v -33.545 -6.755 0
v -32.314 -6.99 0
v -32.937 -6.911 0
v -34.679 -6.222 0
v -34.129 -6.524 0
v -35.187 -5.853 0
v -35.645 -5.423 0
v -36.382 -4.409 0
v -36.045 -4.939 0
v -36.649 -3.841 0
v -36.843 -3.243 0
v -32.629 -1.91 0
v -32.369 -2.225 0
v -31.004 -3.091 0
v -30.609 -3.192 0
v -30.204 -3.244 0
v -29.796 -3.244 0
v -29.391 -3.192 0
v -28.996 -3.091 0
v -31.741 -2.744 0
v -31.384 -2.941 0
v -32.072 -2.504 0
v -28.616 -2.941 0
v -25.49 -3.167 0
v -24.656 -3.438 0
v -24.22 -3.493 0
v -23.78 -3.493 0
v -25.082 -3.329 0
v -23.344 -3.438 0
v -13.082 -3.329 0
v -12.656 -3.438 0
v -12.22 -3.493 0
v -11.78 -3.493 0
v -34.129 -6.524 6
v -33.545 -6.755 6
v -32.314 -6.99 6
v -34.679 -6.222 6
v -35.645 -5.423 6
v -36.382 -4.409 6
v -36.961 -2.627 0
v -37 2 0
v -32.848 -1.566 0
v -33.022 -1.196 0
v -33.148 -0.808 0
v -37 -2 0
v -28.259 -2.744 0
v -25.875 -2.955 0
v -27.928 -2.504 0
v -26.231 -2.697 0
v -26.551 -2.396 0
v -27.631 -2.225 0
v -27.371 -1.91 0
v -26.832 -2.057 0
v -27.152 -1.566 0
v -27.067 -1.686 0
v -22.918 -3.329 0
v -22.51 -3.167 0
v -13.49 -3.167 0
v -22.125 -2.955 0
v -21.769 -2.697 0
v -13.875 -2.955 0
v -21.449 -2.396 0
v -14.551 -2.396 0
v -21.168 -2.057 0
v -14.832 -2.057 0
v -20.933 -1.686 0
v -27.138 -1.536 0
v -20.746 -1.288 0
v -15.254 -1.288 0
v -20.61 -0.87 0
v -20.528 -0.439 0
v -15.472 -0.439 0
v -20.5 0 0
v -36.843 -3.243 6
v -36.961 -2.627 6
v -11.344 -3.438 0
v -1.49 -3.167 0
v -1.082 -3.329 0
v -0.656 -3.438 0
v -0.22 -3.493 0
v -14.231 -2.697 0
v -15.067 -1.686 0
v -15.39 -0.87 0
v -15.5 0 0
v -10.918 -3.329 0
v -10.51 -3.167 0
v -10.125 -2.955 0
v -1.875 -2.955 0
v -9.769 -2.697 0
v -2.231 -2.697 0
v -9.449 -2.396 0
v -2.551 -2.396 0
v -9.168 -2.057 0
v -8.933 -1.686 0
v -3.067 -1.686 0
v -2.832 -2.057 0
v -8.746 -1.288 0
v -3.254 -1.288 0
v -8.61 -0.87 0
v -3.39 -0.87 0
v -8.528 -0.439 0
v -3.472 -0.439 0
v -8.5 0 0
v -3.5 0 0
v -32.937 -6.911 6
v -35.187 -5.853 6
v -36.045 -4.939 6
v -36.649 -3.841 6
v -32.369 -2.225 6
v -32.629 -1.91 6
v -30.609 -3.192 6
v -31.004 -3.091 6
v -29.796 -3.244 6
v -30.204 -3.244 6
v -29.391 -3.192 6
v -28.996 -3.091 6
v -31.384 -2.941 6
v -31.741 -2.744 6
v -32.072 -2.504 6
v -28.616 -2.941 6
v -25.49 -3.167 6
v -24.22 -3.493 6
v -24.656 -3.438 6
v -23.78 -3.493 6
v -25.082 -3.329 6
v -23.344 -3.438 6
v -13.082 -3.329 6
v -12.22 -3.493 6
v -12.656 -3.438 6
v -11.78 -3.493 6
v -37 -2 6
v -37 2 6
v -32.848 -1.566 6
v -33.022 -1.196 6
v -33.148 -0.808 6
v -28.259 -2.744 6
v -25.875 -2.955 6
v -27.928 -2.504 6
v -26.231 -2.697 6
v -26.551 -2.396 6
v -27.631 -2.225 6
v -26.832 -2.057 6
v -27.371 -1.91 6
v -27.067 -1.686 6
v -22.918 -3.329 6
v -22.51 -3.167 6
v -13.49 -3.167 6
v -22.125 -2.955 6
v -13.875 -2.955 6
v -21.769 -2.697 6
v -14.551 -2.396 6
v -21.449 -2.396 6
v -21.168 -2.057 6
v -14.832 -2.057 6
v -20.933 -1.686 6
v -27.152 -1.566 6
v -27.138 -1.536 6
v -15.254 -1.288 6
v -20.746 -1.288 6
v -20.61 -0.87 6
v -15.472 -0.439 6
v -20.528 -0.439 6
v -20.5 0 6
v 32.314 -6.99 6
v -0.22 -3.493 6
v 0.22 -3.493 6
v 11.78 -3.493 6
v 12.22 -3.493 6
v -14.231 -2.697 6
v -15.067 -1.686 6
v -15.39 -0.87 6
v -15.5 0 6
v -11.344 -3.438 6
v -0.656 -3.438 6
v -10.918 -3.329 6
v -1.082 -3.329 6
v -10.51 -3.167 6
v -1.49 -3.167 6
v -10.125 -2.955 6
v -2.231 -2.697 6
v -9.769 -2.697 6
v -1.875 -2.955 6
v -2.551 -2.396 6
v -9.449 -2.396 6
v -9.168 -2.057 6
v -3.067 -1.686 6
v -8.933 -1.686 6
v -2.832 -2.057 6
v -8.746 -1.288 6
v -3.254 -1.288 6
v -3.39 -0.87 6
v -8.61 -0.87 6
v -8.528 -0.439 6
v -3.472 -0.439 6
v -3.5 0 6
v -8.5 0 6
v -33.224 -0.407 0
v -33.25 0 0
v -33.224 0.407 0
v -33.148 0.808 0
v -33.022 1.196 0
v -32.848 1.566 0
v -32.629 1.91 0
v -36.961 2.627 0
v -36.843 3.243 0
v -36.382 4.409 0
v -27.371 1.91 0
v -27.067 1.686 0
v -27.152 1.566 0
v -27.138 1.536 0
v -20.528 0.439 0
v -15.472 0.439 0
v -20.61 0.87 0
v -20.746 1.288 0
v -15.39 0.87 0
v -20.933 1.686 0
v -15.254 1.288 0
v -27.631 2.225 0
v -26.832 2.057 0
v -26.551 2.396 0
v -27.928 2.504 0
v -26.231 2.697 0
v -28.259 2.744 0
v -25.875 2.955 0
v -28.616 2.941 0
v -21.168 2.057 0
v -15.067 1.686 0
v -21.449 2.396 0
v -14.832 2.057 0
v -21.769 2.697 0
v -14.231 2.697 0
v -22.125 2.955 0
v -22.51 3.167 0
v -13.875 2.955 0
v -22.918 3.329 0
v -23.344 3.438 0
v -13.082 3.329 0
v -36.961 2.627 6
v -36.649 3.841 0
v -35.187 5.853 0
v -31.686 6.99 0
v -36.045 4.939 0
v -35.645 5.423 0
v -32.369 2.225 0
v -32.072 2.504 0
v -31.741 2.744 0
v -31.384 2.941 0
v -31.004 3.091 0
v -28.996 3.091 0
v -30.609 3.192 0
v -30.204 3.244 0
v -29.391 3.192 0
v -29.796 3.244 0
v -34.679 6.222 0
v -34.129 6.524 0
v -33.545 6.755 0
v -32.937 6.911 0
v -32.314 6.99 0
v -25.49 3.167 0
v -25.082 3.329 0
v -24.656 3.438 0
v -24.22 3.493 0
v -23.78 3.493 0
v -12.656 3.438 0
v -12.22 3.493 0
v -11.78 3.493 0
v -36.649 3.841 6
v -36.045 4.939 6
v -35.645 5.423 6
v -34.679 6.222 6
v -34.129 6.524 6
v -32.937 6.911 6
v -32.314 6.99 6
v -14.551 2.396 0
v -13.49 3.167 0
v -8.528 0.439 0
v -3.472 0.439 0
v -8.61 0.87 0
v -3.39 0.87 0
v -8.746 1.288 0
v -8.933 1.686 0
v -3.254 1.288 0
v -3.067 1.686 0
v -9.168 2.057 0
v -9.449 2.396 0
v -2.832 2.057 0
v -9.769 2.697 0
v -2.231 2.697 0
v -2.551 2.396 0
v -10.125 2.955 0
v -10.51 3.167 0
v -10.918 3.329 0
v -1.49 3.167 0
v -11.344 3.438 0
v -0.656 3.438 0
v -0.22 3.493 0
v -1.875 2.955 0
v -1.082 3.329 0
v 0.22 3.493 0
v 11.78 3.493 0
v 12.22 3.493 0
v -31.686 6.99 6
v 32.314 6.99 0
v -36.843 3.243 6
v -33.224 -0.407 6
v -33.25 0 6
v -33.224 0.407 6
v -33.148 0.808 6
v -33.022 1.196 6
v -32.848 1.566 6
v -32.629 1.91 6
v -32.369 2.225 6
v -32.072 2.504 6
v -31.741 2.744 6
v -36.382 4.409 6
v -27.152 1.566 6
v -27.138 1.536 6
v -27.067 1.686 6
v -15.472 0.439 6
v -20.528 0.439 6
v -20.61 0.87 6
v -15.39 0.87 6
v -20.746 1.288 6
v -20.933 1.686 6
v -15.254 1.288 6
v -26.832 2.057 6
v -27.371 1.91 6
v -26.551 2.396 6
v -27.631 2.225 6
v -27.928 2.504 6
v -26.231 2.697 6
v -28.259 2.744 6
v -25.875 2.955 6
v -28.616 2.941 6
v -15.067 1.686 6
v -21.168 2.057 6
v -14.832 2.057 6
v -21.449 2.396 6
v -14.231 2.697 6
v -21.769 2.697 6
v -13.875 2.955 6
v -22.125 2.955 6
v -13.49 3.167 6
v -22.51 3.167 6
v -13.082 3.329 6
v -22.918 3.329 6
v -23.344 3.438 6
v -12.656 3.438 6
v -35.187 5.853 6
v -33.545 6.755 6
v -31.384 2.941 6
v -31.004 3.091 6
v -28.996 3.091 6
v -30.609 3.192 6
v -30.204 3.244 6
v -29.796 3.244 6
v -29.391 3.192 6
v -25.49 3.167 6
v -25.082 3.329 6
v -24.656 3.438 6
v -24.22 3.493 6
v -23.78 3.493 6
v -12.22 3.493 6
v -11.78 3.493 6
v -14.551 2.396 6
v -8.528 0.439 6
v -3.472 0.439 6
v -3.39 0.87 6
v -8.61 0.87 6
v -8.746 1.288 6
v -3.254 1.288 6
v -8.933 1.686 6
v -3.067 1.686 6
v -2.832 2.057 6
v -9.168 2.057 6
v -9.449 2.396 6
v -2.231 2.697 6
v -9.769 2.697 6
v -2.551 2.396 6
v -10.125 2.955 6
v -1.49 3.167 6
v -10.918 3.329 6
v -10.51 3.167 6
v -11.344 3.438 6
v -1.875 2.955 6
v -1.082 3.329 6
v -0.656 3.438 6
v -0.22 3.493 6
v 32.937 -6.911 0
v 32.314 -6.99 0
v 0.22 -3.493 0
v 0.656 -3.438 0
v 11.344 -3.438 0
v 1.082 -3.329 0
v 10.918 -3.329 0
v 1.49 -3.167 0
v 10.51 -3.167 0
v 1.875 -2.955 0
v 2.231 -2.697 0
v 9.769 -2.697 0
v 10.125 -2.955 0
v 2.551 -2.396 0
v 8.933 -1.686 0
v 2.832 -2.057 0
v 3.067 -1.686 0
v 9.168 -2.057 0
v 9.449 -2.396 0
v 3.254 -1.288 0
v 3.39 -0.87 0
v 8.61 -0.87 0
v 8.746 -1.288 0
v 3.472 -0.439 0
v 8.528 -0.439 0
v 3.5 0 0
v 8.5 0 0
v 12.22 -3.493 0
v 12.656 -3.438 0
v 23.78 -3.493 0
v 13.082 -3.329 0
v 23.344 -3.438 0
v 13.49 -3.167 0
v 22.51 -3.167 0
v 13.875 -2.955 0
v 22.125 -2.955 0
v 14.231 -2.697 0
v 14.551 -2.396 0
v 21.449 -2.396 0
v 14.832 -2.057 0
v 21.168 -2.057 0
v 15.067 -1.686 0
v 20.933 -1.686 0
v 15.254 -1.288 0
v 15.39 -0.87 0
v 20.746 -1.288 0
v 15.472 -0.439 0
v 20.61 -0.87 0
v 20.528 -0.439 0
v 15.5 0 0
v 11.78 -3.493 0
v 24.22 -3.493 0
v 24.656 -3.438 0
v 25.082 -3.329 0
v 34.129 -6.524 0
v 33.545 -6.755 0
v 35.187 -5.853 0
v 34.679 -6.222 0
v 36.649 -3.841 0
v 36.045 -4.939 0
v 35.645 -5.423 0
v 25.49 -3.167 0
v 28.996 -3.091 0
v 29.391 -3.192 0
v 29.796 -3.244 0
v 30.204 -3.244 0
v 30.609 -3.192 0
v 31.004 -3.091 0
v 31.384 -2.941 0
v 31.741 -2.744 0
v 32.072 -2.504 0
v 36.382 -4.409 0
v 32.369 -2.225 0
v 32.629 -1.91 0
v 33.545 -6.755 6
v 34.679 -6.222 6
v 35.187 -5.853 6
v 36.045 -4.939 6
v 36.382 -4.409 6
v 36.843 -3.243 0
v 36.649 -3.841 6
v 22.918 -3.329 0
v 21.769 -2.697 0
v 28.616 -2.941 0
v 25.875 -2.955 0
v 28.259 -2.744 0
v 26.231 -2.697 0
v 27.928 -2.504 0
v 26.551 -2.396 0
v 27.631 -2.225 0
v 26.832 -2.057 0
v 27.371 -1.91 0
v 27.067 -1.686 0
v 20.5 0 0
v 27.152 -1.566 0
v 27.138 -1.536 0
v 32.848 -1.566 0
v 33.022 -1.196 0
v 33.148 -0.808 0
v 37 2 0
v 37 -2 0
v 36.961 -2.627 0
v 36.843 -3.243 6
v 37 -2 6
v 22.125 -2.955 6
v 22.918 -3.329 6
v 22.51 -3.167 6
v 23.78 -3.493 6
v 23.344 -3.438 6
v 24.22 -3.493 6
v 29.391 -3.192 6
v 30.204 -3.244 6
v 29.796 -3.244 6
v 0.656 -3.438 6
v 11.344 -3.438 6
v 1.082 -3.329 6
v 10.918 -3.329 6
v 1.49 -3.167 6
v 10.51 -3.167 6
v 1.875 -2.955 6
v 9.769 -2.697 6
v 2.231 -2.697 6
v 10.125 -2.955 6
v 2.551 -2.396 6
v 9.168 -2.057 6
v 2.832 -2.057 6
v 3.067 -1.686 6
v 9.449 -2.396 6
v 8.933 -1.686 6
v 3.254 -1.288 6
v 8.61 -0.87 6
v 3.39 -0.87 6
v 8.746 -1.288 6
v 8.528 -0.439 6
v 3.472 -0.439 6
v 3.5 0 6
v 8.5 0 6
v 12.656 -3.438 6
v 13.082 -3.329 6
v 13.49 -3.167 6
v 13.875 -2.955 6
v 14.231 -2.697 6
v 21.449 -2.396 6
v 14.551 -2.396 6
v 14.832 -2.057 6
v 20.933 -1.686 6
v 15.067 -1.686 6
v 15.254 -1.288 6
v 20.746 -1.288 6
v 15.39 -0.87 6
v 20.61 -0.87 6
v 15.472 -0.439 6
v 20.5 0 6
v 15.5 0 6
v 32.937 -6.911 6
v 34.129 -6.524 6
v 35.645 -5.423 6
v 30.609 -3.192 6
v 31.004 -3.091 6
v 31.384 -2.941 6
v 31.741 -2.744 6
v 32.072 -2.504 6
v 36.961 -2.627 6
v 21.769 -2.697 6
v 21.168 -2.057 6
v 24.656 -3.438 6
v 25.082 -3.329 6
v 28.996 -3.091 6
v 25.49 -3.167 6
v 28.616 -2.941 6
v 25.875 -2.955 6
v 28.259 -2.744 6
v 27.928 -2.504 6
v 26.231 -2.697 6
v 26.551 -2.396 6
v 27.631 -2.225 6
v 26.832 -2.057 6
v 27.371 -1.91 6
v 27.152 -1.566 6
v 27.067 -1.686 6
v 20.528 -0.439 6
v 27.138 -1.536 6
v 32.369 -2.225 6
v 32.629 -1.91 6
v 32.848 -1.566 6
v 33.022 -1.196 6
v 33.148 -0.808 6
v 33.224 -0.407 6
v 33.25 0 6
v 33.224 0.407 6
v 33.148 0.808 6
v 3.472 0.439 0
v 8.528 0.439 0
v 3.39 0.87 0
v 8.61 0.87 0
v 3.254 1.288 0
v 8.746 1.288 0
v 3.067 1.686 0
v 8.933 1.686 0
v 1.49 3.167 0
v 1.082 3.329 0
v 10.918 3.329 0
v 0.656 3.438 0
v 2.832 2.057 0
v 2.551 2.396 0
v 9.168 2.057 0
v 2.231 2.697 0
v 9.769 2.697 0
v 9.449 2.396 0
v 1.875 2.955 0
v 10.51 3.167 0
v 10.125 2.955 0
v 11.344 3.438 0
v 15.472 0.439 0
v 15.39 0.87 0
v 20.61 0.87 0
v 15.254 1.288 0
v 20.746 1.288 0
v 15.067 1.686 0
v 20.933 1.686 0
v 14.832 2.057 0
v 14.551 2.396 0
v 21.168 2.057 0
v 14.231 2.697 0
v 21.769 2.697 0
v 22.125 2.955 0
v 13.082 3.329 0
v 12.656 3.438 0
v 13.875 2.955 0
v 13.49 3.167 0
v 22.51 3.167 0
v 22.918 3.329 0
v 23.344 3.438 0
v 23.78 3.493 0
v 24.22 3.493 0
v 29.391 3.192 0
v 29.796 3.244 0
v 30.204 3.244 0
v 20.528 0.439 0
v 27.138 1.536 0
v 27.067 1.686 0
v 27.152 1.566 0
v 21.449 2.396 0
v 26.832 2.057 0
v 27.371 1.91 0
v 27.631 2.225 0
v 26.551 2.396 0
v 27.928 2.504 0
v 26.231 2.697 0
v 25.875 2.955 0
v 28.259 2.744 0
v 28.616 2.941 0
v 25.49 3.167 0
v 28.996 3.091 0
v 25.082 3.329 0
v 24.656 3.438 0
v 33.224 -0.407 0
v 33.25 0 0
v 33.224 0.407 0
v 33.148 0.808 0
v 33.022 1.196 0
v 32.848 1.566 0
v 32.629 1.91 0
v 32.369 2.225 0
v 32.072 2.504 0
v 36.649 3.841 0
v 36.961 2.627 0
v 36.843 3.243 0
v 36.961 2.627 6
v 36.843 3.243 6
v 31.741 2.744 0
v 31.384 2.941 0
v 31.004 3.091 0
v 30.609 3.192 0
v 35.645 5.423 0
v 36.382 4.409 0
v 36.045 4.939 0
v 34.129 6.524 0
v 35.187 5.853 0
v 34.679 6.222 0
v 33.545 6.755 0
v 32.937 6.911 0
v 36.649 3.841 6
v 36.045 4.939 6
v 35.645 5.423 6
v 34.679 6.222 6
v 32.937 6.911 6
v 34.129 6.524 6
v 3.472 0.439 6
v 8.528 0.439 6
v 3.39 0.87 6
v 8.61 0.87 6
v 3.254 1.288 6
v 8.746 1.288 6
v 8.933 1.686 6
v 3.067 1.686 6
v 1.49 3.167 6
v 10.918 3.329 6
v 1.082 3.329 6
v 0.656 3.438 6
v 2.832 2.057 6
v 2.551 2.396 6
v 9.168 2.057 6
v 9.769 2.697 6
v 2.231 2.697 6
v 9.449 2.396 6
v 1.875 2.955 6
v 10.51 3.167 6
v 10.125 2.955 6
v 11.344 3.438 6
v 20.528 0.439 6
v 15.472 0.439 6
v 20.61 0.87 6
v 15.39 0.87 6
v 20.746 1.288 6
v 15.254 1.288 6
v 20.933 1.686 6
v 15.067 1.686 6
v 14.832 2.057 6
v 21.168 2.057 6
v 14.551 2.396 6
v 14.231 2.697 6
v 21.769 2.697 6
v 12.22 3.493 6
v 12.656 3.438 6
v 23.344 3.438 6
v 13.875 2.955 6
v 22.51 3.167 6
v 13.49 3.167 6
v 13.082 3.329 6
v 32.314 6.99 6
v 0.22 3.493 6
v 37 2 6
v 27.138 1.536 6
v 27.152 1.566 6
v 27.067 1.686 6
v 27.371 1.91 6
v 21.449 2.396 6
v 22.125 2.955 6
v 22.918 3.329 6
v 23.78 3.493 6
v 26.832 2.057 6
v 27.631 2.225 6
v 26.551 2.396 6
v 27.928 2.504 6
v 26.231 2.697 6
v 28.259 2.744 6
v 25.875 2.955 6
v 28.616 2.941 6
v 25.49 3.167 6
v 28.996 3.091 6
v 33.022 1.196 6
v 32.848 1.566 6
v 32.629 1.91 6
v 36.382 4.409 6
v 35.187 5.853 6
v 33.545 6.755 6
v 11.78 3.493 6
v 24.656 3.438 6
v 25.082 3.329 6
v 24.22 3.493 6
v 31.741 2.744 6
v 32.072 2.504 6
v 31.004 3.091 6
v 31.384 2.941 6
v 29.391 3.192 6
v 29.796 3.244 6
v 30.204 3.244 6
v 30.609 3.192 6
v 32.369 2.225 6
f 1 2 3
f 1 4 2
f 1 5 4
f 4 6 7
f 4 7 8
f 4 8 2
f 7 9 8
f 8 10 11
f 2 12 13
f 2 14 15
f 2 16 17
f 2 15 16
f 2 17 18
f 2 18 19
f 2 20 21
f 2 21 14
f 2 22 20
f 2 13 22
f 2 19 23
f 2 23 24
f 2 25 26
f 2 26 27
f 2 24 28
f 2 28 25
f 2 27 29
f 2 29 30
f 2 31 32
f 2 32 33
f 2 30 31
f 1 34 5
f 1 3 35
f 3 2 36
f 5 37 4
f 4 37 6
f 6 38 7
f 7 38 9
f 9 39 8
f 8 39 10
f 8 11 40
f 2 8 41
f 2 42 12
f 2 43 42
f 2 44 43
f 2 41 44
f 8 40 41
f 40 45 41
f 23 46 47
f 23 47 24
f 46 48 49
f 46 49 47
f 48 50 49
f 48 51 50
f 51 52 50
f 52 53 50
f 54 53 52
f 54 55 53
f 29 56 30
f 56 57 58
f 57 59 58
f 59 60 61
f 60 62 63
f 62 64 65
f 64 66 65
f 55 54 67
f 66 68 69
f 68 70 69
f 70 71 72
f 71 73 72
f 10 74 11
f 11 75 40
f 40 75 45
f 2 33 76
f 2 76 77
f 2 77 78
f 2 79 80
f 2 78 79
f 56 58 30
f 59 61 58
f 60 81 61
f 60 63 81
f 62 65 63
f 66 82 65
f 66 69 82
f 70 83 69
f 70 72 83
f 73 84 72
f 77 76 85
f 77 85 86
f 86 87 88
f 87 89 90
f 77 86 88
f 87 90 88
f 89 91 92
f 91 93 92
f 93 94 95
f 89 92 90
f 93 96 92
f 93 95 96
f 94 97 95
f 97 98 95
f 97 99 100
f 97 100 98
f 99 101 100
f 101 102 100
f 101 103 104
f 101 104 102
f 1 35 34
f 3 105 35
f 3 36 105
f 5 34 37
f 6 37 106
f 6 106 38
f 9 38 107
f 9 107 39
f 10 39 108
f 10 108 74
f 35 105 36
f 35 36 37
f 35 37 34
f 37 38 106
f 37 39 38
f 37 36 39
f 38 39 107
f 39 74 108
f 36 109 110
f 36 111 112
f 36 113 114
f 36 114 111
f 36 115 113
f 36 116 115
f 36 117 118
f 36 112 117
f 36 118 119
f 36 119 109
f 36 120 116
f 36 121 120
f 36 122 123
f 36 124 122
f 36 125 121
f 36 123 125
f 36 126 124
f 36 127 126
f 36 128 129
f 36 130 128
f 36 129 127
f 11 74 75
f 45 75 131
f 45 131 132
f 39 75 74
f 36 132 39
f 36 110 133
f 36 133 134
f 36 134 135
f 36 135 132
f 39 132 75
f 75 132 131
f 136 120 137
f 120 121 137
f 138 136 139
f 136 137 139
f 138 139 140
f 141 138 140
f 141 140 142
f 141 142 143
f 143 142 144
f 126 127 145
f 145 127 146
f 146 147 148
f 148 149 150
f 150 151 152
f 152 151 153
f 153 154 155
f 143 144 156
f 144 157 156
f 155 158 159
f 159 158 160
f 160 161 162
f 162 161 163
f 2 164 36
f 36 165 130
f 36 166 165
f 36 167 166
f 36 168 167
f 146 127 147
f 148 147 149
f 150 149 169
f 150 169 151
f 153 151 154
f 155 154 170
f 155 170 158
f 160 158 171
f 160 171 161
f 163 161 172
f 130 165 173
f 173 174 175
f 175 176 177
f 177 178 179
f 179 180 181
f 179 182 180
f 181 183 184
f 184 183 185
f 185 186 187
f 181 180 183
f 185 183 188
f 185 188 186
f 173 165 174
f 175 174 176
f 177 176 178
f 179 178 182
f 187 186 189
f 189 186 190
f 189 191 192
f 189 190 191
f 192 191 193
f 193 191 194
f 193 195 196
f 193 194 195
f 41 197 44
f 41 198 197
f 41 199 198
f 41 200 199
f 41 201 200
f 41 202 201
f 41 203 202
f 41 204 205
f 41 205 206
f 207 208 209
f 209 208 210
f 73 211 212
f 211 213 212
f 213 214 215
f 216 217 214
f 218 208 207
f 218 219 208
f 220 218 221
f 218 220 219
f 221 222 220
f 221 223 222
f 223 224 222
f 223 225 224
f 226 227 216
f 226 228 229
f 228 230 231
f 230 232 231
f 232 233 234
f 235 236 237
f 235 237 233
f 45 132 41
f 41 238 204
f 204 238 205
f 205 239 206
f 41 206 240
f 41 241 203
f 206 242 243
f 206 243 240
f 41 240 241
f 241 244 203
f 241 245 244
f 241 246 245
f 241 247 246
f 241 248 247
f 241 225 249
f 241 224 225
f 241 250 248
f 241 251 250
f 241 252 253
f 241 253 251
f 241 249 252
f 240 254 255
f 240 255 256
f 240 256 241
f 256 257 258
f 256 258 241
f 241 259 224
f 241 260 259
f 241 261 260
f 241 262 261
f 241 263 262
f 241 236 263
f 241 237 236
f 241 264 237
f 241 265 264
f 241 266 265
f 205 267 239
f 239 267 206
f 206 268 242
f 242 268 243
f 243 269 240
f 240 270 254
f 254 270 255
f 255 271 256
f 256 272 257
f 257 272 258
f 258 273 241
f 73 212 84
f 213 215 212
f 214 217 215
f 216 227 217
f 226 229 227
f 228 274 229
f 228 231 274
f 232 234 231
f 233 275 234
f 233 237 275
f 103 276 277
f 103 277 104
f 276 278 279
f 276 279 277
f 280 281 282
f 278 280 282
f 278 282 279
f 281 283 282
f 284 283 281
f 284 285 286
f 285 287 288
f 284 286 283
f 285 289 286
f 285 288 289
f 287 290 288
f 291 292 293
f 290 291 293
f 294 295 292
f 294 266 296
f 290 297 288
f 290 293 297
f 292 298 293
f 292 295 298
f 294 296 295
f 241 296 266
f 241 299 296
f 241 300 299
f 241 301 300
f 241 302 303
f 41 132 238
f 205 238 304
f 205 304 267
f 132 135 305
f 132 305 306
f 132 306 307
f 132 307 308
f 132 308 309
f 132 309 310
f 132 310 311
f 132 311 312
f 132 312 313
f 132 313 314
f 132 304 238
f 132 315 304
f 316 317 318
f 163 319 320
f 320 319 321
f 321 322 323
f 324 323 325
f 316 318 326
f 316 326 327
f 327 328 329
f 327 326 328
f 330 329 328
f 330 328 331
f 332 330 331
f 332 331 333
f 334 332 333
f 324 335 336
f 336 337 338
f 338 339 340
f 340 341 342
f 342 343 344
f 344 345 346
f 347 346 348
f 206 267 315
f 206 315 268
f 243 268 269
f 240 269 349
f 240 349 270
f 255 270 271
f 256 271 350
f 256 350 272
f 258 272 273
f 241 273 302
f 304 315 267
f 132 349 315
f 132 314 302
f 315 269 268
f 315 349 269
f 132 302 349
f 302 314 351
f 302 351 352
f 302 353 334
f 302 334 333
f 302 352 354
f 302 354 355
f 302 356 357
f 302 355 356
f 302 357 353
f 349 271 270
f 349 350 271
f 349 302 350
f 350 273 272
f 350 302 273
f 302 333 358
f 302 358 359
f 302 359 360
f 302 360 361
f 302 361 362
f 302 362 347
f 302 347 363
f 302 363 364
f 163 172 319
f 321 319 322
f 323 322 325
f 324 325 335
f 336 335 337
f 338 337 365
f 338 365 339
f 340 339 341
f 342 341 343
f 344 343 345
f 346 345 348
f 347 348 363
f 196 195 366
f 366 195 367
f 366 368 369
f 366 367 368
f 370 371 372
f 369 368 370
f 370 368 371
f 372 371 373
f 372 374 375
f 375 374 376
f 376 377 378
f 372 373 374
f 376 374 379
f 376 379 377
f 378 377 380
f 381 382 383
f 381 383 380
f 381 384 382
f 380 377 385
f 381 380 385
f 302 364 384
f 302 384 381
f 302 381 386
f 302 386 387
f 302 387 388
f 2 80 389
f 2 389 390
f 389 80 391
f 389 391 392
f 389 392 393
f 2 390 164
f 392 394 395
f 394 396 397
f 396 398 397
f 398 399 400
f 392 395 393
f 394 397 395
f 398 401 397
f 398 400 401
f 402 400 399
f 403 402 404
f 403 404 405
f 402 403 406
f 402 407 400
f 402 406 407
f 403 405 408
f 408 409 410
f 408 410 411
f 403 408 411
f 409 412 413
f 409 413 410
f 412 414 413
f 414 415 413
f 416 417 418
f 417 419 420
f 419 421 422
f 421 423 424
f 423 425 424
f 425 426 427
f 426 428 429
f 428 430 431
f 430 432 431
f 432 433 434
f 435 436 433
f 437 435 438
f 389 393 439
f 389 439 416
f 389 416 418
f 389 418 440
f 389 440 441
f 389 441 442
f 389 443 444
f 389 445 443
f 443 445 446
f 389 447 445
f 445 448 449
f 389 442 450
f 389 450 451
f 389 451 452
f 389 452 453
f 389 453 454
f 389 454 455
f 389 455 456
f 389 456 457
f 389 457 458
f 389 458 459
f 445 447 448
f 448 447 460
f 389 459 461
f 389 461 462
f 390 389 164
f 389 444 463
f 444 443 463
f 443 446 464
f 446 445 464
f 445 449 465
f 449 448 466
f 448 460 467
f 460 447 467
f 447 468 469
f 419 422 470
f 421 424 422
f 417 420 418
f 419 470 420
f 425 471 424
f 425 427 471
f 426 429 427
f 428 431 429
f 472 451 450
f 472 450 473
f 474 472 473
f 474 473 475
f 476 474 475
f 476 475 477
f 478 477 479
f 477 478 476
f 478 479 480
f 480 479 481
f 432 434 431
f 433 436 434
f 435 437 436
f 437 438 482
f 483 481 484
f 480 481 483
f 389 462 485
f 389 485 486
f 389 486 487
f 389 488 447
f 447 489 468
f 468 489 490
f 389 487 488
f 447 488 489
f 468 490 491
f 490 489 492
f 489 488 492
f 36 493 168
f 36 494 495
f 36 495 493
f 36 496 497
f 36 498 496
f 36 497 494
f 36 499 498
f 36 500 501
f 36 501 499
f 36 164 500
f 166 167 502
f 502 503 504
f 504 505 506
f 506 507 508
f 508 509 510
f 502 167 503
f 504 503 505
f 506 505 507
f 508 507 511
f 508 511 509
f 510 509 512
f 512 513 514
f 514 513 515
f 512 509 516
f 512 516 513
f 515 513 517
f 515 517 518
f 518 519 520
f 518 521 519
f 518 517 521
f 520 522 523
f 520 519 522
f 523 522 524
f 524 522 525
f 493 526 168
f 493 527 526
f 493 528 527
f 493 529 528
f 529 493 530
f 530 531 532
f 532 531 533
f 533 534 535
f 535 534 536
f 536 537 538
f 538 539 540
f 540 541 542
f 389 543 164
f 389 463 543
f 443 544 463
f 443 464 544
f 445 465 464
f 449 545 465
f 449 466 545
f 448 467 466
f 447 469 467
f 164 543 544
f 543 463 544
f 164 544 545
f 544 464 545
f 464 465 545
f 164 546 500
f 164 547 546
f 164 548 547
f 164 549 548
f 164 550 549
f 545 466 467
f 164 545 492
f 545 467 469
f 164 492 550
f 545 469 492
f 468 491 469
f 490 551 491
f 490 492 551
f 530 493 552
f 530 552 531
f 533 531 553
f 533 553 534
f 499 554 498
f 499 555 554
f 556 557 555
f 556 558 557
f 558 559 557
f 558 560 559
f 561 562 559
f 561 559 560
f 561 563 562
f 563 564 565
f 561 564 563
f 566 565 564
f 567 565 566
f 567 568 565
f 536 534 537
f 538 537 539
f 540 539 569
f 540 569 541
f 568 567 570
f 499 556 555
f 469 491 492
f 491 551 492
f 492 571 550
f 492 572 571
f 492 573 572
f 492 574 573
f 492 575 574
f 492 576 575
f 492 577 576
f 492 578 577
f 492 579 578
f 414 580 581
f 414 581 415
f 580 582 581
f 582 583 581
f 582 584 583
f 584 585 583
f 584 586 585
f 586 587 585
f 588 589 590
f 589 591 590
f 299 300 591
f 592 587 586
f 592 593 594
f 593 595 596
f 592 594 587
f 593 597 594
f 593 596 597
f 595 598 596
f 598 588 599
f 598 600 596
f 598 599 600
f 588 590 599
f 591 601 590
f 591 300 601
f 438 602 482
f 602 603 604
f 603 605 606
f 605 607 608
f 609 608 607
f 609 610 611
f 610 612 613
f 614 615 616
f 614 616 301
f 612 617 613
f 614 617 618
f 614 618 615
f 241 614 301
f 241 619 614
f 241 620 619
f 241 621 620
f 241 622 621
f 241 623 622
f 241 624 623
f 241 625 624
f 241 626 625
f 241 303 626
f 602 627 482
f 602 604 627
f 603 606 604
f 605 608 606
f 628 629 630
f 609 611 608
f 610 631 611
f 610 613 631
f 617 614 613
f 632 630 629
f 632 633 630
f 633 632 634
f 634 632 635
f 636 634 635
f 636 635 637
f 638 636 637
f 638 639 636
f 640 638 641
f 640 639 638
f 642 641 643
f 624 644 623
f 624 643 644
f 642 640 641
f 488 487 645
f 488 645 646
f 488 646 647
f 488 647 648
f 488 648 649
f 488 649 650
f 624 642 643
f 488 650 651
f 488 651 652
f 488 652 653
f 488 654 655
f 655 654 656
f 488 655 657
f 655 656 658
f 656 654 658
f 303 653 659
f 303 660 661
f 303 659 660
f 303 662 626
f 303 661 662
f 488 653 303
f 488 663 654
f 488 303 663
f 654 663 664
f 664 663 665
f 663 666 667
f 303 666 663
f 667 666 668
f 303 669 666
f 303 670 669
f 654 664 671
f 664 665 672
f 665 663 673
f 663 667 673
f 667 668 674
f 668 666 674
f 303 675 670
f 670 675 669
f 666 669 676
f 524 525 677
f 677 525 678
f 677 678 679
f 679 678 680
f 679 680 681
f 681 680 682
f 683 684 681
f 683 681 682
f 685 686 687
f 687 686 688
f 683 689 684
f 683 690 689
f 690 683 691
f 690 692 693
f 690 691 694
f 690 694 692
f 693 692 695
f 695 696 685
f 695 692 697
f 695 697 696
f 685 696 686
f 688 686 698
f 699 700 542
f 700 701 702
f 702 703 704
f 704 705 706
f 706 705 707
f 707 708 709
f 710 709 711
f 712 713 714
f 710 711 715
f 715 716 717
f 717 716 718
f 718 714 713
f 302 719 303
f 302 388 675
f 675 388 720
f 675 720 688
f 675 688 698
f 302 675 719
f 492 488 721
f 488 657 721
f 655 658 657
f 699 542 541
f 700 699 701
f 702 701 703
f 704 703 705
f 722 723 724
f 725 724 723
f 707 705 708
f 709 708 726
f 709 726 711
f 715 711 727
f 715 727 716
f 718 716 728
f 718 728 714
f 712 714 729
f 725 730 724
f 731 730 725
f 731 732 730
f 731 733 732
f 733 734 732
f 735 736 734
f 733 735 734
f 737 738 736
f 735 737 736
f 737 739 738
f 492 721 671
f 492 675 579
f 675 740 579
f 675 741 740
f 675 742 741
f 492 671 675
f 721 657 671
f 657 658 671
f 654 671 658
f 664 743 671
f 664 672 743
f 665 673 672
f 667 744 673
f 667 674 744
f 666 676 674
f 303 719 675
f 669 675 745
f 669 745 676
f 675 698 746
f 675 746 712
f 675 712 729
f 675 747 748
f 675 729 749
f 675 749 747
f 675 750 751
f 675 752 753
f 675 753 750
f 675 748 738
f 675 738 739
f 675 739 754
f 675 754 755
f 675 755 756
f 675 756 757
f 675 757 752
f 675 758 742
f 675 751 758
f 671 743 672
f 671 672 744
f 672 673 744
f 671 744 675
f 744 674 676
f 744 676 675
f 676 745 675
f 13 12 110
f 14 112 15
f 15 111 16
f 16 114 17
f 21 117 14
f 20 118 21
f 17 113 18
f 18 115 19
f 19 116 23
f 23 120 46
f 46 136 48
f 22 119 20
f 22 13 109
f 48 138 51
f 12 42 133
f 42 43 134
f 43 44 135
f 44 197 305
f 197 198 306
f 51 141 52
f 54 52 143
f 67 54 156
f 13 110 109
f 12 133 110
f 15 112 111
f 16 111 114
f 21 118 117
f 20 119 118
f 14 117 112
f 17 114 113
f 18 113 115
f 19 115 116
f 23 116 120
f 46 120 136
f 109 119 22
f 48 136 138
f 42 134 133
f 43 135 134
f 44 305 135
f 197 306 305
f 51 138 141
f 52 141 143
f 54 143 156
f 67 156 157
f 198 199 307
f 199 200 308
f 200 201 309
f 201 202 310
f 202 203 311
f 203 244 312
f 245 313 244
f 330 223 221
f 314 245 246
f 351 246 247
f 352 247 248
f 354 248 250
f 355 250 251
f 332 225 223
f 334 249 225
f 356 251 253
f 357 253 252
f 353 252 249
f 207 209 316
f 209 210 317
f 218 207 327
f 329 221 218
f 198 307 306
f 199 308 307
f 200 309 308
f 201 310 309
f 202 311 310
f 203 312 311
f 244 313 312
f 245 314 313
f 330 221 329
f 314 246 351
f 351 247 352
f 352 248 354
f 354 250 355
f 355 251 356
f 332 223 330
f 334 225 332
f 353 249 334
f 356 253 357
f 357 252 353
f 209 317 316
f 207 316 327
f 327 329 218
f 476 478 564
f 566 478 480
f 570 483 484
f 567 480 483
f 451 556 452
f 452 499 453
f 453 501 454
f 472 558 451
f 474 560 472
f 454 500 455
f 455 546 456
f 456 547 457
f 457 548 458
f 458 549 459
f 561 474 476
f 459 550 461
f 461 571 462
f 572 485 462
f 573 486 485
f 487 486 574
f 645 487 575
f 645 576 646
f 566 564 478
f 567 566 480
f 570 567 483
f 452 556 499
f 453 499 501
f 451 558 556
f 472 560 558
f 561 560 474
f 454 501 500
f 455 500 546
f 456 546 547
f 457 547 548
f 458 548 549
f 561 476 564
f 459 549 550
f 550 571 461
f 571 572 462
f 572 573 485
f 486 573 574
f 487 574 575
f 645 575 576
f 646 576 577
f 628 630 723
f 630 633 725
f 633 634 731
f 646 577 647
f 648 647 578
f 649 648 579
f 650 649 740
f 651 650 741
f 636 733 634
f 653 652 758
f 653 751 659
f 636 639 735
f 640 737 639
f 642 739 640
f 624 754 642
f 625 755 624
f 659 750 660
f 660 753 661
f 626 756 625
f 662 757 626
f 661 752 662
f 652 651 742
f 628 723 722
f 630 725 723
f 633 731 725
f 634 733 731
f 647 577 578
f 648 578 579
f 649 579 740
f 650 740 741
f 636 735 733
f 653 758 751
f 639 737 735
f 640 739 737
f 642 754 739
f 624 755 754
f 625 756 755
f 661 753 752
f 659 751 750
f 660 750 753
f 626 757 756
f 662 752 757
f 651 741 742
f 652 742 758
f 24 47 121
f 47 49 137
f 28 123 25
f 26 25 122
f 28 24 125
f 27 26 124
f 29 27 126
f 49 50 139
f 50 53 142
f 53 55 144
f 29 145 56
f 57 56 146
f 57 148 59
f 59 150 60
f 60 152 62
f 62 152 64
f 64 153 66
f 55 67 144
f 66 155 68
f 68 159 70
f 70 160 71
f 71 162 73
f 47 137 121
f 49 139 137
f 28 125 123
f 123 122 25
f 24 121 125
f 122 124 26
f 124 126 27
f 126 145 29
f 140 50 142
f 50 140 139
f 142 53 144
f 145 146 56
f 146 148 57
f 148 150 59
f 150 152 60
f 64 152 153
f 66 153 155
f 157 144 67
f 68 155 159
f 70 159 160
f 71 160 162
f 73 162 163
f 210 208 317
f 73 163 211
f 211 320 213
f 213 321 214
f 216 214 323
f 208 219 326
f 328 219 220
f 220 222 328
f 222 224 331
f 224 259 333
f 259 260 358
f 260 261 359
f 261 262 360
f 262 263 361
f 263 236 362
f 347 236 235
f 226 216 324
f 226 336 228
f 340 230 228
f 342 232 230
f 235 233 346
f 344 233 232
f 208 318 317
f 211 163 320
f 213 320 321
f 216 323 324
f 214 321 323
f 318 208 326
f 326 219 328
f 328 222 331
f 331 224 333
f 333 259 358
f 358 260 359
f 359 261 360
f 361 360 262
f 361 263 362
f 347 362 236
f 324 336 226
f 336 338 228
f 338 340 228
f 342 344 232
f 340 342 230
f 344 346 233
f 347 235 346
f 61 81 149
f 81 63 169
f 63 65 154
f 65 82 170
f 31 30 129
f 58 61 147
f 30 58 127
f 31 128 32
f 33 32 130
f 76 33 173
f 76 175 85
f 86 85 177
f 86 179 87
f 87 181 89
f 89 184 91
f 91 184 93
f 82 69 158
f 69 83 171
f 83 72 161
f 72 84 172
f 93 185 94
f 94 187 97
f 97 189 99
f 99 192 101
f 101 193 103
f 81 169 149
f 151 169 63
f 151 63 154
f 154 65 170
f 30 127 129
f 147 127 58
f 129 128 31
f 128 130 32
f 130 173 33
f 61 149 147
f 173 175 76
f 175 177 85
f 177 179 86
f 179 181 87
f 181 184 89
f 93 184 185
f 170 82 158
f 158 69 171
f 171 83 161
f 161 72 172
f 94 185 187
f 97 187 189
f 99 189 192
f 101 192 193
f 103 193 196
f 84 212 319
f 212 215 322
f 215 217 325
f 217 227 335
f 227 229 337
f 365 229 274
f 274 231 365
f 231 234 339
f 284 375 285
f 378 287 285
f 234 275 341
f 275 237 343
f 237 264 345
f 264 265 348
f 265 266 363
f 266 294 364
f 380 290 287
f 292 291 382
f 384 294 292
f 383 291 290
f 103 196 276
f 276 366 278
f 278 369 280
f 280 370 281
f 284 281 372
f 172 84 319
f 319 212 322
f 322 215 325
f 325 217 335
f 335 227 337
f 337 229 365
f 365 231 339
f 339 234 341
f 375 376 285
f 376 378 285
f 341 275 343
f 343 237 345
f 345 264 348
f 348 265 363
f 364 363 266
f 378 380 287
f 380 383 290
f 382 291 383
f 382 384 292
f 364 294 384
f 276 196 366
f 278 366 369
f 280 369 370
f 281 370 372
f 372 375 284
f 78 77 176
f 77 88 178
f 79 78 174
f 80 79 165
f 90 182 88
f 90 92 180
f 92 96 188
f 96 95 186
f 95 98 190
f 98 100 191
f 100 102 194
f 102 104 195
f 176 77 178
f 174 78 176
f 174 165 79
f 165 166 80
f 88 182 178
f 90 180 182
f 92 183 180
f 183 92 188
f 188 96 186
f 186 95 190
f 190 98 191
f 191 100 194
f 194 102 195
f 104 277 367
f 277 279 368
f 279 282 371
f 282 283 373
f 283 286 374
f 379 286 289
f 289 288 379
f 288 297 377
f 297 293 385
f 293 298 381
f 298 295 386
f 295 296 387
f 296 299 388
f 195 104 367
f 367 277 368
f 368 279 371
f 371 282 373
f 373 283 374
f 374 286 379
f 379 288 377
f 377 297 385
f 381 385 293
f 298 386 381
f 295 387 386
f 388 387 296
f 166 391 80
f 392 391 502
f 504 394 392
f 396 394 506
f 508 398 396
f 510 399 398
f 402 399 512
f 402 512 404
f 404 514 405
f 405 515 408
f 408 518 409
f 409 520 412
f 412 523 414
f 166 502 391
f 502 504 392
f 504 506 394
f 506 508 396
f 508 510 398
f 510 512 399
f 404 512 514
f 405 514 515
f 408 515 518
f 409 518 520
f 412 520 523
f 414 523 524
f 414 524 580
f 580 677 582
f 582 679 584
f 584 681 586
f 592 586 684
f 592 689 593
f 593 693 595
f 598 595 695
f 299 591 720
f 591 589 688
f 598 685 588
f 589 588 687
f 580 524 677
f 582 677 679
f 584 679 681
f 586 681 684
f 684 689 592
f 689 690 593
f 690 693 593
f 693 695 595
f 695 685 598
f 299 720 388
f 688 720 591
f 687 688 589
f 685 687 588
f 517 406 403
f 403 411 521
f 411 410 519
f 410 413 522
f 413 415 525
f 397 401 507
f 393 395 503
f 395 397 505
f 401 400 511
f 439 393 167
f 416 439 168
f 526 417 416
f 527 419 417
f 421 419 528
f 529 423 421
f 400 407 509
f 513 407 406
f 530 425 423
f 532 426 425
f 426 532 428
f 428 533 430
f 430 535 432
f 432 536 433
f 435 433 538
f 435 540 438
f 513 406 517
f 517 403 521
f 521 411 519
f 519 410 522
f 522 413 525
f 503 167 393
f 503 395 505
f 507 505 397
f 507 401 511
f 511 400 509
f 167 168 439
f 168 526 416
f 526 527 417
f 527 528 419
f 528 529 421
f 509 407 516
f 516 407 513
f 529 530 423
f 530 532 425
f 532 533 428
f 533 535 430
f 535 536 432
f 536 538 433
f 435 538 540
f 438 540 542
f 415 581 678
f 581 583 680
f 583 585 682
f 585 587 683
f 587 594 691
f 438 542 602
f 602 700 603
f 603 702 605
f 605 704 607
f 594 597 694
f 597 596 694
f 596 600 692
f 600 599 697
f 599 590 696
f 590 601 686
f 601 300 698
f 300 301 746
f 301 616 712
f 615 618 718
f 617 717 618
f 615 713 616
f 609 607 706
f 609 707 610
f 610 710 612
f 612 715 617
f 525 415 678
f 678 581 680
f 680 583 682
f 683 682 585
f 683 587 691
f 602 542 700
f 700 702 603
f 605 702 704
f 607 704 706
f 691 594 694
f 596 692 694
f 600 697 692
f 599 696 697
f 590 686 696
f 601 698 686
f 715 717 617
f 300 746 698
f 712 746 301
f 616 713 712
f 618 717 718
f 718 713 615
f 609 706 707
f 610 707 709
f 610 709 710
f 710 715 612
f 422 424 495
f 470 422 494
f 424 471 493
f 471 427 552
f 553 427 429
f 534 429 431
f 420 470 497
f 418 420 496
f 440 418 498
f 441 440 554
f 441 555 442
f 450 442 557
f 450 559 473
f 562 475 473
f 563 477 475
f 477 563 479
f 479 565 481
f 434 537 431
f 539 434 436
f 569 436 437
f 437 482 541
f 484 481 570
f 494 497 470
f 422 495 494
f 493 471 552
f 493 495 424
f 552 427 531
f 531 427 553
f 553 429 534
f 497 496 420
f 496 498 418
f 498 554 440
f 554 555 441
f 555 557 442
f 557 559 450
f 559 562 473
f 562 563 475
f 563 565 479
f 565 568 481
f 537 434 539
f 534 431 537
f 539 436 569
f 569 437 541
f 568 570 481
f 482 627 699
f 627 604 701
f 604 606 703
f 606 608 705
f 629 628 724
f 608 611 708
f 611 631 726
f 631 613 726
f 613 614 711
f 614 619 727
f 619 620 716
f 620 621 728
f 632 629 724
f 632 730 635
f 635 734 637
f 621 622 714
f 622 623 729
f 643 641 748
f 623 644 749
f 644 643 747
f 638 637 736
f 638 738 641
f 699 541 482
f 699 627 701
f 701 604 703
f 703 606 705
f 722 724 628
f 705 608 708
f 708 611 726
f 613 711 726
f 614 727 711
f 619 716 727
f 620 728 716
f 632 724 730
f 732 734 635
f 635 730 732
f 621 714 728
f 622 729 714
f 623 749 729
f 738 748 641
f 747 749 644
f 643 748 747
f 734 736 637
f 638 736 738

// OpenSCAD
$fn = 50;

difference() {
	union() {
		hull() {
			translate(v = [-32.0, 2.0, 0]) {
				cylinder(h = 6, r = 5);
			}
			translate(v = [32.0, 2.0, 0]) {
				cylinder(h = 6, r = 5);
			}
			translate(v = [-32.0, -2.0, 0]) {
				cylinder(h = 6, r = 5);
			}
			translate(v = [32.0, -2.0, 0]) {
				cylinder(h = 6, r = 5);
			}
		}
	}
	union() {
		translate(v = [-30.0, 0.0, -100.0]) {
			cylinder(h = 200, r = 3.25);
		}
		translate(v = [30.0, 0.0, -100.0]) {
			cylinder(h = 200, r = 3.25);
		}
		translate(v = [-30.0, 0.0, -100.0]) {
			cylinder(h = 200, r = 1.8);
		}
		translate(v = [30.0, 0.0, -100.0]) {
			cylinder(h = 200, r = 1.8);
		}
		translate(v = [-24.0, 0, 0.0]) {
			cylinder(h = 6, r = 3.5);
		}
		translate(v = [-12.0, 0, 0.0]) {
			cylinder(h = 6, r = 3.5);
		}
		cylinder(h = 6, r = 3.5);
		translate(v = [12.0, 0, 0.0]) {
			cylinder(h = 6, r = 3.5);
		}
		translate(v = [24.0, 0, 0.0]) {
			cylinder(h = 6, r = 3.5);
		}
	}
}
